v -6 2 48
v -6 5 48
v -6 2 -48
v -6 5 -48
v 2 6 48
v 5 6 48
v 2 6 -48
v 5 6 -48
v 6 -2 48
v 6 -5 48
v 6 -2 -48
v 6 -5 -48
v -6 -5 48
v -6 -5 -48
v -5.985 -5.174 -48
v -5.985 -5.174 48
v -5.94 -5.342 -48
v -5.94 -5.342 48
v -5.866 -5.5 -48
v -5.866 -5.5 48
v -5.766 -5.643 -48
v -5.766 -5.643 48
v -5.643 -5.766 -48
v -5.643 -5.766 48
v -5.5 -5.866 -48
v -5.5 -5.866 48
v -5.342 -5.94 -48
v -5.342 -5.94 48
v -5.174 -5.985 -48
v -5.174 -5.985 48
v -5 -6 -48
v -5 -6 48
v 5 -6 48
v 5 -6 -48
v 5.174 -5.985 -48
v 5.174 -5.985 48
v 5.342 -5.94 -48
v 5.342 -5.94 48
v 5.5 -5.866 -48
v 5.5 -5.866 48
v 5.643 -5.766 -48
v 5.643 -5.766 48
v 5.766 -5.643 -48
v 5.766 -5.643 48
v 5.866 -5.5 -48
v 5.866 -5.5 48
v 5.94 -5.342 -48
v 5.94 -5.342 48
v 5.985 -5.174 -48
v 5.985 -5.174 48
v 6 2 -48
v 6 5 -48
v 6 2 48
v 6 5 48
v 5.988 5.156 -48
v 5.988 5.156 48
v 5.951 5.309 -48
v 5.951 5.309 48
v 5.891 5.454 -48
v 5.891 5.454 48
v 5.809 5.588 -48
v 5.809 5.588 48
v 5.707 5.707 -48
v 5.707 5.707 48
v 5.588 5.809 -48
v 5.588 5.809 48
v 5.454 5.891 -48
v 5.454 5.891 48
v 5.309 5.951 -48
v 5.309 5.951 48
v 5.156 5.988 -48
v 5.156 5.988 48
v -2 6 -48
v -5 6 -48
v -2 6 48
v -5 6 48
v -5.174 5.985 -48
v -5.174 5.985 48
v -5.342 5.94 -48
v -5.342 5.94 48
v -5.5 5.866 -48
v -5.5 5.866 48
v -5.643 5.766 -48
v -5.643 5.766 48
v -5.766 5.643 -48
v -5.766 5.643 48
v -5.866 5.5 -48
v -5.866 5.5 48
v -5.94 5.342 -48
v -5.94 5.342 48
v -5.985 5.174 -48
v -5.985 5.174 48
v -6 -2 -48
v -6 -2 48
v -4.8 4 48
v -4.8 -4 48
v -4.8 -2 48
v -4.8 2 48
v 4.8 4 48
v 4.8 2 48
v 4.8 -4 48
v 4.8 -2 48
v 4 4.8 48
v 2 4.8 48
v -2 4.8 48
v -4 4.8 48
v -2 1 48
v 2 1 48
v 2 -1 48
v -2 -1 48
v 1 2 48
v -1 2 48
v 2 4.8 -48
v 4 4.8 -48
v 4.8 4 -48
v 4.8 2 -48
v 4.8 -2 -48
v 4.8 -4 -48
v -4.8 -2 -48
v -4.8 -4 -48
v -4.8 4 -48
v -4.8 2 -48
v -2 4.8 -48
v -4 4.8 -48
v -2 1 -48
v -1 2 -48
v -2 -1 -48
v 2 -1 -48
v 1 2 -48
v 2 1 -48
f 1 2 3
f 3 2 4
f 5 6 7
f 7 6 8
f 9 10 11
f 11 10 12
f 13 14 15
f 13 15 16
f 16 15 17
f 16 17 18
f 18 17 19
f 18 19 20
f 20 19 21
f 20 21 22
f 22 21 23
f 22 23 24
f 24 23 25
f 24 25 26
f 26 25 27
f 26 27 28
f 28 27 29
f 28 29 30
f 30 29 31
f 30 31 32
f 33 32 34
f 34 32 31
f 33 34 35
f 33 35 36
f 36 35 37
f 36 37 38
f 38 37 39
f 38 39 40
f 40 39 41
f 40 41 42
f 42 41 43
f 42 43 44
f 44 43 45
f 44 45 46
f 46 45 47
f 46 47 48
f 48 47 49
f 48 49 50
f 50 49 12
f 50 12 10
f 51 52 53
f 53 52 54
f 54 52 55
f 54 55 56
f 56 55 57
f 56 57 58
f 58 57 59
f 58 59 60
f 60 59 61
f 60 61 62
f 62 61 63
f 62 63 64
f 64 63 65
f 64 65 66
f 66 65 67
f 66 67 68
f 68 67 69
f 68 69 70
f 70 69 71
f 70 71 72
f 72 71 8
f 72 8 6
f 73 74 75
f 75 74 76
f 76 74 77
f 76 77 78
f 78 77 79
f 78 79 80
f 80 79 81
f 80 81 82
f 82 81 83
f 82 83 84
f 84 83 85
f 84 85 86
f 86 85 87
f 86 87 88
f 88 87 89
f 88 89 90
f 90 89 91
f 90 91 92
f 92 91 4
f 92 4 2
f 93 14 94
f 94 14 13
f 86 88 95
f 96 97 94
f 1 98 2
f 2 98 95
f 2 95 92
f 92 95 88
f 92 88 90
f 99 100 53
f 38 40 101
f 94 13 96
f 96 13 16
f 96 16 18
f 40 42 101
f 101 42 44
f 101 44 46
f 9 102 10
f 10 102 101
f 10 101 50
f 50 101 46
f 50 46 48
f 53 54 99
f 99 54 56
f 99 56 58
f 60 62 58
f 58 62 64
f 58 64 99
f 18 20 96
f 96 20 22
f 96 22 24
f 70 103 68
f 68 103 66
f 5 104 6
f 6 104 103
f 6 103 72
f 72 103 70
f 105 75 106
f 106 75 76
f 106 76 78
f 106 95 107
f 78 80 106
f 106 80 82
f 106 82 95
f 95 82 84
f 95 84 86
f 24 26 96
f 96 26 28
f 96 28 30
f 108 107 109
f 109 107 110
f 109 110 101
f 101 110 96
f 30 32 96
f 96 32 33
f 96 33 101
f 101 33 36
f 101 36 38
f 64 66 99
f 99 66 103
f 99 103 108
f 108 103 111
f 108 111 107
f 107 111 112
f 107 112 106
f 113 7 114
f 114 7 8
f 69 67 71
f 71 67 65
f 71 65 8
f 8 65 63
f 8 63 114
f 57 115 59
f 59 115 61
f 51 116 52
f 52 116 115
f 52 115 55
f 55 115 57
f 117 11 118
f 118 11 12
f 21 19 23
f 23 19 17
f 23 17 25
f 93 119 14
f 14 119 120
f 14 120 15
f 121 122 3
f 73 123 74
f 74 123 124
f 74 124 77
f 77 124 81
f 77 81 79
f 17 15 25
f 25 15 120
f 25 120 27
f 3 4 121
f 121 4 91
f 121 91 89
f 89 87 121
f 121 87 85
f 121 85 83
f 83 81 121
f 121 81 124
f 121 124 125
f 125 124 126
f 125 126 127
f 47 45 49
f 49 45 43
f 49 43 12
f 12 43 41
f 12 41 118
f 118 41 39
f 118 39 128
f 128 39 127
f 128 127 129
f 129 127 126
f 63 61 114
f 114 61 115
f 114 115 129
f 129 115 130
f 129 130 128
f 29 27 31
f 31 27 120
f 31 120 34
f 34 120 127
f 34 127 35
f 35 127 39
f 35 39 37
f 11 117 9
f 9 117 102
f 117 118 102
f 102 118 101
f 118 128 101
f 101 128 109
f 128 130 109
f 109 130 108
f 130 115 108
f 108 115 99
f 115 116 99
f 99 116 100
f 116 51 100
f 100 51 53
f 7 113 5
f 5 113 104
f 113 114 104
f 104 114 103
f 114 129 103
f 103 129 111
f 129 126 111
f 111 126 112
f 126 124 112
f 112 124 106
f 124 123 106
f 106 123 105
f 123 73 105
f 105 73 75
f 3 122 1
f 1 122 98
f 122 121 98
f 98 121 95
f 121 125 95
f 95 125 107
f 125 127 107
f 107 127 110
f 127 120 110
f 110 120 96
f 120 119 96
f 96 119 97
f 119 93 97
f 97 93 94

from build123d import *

# Parameters (mm, degrees)
EXTRUSION1_DEPTH             = 48
ENL_V_MAT_EXTRU_1_DEPTH      = 97.374270425
R_P_TITION_CIRCULAIRE1_COUNT = 3
R_P_TITION_CIRCULAIRE1_ANGLE = 180


with BuildPart() as part:
    # Esquisse1 → Extrusion1 (new, symmetric)
    with BuildSketch(Plane.XY):
        with BuildLine():
            Line((-6, 5), (-6, -5))
            ThreePointArc((-6, -5), (-5.707106781, -5.707106781), (-5, -6))
            Line((-5, -6), (5, -6))
            ThreePointArc((5, -6), (5.707106781, -5.707106781), (6, -5))
            Line((6, -5), (6, 5))
            ThreePointArc((6, 5), (5.707106781, 5.707106781), (5, 6))
            Line((5, 6), (-5, 6))
            ThreePointArc((-5, 6), (-5.707106781, 5.707106781), (-6, 5))
        make_face()
    extrude(amount=EXTRUSION1_DEPTH, both=True)

    # Esquisse3 → Enlèv. mat.-Extru.1 (cut, through all)
    with BuildSketch(Plane.XY.offset(48)):
        Polygon((6, 2), (4.8, 2), (4.8, 4), (2, 1), (2, -1), (4.8, -4), (4.8, -2), (6, -2), align=None)
    enl_v_mat_extru_1 = extrude(amount=-ENL_V_MAT_EXTRU_1_DEPTH, mode=Mode.SUBTRACT)

    # Répétition circulaire1: Enlèv. mat.-Extru.1 ×3 about axis
    r_p_tition_circulaire1_axis = Axis((0, 0, -1), (0, 0, 1))
    for i in range(1, R_P_TITION_CIRCULAIRE1_COUNT):
        add(enl_v_mat_extru_1.rotate(r_p_tition_circulaire1_axis, i * R_P_TITION_CIRCULAIRE1_ANGLE / (R_P_TITION_CIRCULAIRE1_COUNT - 1)), mode=Mode.SUBTRACT)


solid = part.part
